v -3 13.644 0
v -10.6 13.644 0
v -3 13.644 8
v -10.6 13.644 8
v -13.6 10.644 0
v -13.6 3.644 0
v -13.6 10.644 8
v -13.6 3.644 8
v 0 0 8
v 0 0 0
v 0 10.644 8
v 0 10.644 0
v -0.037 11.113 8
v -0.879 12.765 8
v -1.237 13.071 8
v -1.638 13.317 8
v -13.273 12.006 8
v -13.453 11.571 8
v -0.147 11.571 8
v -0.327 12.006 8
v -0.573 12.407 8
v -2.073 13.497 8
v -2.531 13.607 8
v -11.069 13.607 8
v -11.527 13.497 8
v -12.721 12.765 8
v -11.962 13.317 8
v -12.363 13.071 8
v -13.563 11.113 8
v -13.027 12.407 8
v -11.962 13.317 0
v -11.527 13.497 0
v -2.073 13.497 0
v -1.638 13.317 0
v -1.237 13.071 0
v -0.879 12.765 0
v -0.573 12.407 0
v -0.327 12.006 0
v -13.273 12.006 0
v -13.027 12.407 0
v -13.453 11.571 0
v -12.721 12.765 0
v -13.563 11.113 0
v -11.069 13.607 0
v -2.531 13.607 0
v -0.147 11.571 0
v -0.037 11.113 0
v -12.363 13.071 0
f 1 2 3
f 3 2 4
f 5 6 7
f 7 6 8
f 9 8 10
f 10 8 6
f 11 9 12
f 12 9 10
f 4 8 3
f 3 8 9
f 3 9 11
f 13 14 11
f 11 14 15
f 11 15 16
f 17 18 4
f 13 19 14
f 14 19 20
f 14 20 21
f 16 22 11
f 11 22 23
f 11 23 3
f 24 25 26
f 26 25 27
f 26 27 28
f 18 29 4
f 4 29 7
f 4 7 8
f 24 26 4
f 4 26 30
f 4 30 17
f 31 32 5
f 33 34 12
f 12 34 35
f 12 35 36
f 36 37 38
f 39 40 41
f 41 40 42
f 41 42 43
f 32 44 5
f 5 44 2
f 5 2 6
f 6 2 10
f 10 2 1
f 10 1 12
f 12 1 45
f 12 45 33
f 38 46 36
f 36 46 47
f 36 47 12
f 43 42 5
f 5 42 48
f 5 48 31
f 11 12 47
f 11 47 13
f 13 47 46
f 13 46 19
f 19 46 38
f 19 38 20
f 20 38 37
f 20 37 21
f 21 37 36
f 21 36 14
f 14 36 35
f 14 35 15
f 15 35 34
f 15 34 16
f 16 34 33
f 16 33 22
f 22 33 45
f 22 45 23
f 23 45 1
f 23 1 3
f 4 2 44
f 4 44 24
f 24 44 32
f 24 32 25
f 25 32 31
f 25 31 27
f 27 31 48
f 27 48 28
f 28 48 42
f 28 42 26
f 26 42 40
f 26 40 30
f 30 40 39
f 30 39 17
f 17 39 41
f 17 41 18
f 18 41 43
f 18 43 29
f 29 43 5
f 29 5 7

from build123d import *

# Parameters (mm, degrees)
SALIENTE_EXTRUIR1_DEPTH = 8
REDONDEO1_R             = 3


with BuildPart() as part:
    # Croquis1 → Saliente-Extruir1 (new body)
    with BuildSketch(Plane.XY):
        Polygon((-13.6, 3.644109017), (0, 0), (0, 13.644109017), (-13.6, 13.644109017), align=None)
    extrude(amount=SALIENTE_EXTRUIR1_DEPTH)

    # Redondeo1
    redondeo1_edges = [part.edges().sort_by_distance(p)[0] for p in [
        (0, 13.644109017, 4),
        (-13.6, 13.644109017, 4),
    ]]
    fillet(redondeo1_edges, radius=REDONDEO1_R)


solid = part.part
